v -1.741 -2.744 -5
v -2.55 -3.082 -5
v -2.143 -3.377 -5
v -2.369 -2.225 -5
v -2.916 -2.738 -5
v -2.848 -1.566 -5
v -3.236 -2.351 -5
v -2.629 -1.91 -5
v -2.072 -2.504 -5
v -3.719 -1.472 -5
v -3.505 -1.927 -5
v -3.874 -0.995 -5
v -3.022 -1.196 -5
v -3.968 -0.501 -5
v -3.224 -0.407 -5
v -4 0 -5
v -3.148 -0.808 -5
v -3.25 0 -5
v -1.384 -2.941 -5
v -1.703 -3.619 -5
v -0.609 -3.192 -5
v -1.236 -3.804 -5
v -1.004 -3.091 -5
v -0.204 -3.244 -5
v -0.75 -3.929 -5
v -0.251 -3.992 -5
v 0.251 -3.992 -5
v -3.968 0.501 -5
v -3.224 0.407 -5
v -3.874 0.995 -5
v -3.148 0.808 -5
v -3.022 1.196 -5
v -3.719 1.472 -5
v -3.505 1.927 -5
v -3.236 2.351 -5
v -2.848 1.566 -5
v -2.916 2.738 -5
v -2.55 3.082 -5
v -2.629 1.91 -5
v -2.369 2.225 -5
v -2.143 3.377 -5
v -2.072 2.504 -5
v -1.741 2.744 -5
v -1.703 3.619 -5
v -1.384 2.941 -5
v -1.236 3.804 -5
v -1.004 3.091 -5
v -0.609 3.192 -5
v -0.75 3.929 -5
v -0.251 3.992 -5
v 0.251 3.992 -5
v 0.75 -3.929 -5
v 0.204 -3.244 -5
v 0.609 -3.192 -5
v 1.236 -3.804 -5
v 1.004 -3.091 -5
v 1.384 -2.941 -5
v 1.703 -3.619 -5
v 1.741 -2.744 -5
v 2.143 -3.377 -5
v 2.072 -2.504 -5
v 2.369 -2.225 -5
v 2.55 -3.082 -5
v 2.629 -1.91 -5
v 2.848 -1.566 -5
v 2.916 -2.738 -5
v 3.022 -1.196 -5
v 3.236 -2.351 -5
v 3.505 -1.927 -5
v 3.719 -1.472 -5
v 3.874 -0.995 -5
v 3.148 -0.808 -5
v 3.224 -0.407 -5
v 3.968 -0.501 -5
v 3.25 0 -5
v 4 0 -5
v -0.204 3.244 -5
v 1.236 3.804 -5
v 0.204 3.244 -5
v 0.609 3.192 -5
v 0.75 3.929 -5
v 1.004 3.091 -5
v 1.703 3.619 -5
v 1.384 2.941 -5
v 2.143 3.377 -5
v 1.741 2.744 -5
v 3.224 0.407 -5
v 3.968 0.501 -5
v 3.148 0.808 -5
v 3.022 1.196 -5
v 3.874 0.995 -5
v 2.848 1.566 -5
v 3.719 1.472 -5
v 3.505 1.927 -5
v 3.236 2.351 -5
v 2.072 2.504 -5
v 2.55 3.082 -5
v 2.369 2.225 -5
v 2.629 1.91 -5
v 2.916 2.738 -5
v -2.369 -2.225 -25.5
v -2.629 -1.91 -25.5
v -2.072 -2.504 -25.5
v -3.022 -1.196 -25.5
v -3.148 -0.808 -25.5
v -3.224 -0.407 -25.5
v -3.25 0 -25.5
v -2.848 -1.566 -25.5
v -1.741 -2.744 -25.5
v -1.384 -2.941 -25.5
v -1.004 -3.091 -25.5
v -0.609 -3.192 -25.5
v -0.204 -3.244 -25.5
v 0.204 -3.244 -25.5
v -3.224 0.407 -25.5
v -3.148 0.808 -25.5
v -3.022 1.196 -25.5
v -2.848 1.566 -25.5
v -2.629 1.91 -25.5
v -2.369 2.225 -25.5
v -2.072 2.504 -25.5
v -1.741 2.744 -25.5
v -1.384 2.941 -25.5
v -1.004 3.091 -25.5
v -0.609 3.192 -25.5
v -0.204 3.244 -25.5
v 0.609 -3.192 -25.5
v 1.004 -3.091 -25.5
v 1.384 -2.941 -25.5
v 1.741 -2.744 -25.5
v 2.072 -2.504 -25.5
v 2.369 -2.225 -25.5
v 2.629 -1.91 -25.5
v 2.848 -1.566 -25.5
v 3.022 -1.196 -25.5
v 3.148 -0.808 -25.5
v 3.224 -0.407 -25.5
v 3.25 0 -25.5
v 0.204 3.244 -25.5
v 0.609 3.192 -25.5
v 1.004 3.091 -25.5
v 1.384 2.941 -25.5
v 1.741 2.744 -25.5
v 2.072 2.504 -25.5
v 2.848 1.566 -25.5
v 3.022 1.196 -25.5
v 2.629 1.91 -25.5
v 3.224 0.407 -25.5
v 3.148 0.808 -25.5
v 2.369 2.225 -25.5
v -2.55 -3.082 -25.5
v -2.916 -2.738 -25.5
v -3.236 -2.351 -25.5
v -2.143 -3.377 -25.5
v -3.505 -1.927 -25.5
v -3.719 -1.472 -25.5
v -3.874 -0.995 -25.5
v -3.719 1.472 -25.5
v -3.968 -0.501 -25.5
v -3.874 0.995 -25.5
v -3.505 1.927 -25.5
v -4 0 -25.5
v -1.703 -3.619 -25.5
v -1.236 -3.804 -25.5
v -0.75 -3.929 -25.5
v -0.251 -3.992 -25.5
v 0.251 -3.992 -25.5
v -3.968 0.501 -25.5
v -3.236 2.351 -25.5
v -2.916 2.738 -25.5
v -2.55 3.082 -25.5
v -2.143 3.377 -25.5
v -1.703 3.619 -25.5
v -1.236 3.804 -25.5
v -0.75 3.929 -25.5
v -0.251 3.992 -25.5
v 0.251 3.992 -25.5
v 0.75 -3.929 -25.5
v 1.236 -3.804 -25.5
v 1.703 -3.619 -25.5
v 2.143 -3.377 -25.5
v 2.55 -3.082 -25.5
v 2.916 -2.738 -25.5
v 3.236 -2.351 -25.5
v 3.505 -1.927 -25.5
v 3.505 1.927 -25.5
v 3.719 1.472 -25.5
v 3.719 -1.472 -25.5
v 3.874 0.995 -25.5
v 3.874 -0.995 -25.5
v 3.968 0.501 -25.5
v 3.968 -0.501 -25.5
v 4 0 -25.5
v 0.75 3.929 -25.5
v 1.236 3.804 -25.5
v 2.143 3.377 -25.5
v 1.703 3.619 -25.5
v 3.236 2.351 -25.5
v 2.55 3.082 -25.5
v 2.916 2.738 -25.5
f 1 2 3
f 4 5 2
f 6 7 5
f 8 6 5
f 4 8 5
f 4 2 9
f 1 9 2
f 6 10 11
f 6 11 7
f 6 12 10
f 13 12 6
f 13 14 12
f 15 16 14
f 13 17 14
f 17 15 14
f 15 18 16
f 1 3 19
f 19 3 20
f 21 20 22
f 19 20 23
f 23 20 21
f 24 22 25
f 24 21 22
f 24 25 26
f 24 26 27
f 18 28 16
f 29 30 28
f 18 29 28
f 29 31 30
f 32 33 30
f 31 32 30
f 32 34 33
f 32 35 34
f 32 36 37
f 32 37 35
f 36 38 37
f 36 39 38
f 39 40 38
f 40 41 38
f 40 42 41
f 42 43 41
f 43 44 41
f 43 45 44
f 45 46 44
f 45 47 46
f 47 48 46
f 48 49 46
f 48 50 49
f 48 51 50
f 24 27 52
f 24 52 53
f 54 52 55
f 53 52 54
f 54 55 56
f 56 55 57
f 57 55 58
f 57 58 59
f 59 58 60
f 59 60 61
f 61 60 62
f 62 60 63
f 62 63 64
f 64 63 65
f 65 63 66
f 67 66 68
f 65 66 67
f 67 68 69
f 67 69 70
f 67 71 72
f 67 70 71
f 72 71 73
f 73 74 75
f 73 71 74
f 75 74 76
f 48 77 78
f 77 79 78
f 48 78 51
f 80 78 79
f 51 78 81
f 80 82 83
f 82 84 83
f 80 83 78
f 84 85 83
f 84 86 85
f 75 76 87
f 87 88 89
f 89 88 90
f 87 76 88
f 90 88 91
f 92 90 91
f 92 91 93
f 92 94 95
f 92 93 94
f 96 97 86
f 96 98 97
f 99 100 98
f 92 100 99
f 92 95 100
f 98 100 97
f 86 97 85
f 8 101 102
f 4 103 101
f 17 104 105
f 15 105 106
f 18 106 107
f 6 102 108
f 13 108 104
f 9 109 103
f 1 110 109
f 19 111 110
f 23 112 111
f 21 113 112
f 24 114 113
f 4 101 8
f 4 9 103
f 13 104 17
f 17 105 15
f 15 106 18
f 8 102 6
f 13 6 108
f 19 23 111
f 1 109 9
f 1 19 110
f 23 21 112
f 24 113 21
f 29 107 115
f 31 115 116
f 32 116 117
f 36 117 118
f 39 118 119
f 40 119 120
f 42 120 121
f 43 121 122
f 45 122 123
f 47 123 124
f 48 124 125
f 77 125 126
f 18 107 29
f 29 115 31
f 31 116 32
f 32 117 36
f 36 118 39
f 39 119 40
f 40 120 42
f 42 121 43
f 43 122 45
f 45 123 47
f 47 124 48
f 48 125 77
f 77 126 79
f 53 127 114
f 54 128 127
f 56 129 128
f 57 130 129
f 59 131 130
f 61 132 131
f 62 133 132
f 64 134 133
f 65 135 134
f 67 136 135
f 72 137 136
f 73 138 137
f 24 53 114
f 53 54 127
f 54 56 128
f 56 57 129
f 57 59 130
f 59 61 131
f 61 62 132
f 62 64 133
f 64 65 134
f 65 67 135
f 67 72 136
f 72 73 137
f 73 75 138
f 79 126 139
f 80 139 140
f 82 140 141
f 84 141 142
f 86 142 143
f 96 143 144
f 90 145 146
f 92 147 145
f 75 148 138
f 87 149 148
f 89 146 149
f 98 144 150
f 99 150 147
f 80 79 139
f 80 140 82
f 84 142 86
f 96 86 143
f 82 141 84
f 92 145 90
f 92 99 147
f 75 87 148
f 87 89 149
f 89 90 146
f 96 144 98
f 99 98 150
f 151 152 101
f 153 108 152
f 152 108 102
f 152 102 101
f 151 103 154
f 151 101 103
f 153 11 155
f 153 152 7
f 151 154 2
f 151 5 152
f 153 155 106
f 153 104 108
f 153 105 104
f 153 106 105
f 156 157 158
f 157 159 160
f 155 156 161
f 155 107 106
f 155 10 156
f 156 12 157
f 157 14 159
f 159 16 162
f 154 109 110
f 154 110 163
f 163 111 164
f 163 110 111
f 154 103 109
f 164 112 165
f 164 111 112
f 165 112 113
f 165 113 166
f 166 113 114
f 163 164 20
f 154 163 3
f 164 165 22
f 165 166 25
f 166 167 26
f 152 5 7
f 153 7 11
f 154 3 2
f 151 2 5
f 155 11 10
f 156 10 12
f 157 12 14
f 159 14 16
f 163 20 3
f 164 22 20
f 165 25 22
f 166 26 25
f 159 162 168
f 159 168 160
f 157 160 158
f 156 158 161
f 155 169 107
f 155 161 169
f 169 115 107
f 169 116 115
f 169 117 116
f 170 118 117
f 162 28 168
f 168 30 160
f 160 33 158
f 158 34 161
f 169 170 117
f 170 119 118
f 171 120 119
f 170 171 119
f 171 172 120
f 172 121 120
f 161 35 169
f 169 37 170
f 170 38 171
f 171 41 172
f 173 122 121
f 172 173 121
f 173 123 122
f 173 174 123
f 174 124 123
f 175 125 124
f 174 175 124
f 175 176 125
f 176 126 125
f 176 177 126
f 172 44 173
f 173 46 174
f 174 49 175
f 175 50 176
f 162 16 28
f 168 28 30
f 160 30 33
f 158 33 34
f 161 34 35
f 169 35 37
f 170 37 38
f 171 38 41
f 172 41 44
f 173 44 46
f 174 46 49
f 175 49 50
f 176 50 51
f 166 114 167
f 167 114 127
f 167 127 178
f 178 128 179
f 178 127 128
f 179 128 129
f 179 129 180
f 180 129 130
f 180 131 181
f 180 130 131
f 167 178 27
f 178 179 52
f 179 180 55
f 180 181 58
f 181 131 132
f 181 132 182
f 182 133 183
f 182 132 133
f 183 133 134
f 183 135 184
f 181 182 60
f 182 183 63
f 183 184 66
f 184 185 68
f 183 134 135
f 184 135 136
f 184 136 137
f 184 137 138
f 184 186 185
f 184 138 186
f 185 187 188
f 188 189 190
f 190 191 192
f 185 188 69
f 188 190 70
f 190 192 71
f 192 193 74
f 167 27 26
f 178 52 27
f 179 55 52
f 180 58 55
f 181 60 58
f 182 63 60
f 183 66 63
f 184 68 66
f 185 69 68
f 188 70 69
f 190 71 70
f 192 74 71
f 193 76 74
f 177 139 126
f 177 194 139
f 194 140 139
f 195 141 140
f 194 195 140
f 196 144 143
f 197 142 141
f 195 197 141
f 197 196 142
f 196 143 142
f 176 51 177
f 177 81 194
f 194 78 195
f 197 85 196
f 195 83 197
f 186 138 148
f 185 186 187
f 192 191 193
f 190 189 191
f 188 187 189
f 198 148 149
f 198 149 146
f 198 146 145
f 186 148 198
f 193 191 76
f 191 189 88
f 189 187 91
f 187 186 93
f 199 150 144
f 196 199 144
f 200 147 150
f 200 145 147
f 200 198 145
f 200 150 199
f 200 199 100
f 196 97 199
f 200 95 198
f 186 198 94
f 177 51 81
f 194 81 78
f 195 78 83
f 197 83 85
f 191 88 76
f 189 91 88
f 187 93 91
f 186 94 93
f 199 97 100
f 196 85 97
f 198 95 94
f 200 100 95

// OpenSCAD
$fn = 50;

difference() {
	union() {
		translate(v = [0, 0, -25.5]) {
			cylinder(h = 25.5, r = 4.0);
		}
	}
	union() {
		translate(v = [0, 0, 0]) {
			rotate(a = [0, 0, 0]) {
				difference() {
					union() {
						translate(v = [0, 0, -5]) {
							linear_extrude(height = 5) {
								polygon(points = [[5.914249999999999, 0.0], [2.957125, 5.1218907443321156], [-2.9571249999999982, 5.1218907443321156], [-5.914249999999999, 7.242867331857232e-16], [-2.9571250000000022, -5.121890744332115], [2.9571249999999956, -5.121890744332118]]);
							}
						}
					}
					union();
				}
			}
		}
		#translate(v = [0, 0, -100.0]) {
			cylinder(h = 200, r = 3.25);
		}
	}
}
